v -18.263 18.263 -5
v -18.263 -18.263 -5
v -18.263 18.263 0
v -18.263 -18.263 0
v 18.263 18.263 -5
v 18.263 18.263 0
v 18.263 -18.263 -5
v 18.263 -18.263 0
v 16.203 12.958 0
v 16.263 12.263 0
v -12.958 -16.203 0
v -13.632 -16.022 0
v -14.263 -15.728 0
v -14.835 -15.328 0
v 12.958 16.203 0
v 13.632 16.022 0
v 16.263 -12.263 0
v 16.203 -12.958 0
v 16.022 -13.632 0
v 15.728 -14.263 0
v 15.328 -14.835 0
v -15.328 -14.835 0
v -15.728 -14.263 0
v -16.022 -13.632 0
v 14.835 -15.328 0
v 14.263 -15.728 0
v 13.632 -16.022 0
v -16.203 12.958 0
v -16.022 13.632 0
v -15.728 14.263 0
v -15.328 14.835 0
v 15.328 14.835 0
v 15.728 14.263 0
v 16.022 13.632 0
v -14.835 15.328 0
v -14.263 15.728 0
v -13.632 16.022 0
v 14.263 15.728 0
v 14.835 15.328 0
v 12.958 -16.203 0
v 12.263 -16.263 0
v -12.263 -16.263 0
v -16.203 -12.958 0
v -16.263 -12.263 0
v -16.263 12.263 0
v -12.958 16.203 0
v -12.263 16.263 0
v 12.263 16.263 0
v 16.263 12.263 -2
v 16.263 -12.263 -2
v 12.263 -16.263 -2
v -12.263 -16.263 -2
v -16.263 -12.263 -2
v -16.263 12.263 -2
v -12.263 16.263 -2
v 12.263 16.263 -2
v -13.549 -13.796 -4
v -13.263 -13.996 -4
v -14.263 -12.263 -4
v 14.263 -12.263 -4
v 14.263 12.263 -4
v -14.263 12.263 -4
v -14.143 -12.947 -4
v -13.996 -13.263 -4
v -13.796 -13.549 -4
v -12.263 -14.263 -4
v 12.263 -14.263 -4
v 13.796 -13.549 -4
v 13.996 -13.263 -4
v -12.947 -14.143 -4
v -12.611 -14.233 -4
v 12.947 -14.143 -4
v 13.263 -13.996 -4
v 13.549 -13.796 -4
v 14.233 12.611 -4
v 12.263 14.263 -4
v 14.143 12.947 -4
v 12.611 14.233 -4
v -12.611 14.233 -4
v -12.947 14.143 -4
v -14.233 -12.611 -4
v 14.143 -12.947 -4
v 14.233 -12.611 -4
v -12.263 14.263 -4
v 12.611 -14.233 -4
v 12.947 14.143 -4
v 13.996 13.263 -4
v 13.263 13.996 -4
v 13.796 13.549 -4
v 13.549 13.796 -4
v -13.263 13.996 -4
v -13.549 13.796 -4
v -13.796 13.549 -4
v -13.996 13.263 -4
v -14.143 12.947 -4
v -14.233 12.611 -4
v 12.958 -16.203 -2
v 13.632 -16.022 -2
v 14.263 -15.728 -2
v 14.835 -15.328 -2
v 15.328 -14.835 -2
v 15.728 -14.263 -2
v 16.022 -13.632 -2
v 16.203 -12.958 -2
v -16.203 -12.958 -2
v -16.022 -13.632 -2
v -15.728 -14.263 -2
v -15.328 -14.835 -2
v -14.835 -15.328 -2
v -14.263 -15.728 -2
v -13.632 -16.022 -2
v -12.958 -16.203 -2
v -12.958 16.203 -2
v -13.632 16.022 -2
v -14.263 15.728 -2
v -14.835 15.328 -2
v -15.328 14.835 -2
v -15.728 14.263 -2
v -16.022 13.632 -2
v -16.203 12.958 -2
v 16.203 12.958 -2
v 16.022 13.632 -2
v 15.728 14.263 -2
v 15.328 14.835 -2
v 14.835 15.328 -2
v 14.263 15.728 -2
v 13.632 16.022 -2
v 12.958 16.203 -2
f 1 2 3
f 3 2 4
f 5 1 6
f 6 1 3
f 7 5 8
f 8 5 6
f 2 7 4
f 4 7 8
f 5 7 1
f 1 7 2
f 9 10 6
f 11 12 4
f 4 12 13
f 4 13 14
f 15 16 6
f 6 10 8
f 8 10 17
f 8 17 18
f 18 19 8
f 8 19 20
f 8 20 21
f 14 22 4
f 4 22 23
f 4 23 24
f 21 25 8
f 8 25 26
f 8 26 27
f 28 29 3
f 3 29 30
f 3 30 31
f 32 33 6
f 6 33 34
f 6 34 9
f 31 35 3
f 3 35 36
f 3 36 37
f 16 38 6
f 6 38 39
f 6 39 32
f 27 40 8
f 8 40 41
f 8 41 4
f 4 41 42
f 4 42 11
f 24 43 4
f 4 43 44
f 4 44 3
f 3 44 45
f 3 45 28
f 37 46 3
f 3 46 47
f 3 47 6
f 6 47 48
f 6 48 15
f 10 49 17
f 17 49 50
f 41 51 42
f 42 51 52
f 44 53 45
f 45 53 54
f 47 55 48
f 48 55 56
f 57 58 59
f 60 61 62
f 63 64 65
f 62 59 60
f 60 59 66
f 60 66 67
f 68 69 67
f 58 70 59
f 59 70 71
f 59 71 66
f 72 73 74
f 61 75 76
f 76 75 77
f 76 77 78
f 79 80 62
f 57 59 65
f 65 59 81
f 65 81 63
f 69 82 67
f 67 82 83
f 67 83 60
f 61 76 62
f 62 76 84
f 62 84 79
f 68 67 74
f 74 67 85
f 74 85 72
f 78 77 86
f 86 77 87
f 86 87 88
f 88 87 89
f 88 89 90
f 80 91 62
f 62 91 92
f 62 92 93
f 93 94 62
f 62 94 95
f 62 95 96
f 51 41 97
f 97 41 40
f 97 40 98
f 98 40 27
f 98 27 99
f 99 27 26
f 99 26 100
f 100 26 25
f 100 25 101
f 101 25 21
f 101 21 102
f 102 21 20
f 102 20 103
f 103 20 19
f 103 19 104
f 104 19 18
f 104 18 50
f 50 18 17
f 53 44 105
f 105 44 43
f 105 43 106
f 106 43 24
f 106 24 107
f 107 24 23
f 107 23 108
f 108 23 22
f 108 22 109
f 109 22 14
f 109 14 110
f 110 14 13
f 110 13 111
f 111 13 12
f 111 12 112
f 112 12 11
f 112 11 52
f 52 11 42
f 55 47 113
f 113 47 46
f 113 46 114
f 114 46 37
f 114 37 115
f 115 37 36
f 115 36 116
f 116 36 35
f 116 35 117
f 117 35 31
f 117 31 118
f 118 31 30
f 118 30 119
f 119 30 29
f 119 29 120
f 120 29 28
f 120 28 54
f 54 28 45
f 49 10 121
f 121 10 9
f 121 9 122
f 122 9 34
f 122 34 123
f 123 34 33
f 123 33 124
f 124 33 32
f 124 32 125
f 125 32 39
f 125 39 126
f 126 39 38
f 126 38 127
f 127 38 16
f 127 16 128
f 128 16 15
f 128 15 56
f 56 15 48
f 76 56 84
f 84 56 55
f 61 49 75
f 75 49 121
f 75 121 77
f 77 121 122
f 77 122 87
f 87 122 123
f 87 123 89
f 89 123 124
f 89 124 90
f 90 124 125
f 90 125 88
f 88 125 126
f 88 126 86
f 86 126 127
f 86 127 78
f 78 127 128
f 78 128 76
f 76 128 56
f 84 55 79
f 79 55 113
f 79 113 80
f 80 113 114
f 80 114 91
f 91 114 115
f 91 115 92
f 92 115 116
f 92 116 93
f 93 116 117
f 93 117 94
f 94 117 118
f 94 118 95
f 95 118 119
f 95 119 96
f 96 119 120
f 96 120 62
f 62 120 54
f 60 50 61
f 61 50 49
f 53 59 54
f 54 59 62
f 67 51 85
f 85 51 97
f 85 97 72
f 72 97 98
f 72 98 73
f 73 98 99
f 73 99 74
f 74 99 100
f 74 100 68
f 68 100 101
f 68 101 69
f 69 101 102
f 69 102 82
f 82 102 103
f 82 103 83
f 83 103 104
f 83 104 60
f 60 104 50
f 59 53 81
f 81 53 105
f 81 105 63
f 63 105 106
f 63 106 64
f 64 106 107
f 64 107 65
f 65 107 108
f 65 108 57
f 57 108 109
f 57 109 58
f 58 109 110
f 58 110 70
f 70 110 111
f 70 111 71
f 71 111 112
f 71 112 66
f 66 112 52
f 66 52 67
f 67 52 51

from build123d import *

# Parameters (mm, degrees)
SKETCH1_W           = 36.526911934
SKETCH1_H           = 36.526911934
BOSS_EXTRUDE1_DEPTH = 5
CAVITY1_START       = -2
CAVITY1_DEPTH       = 2


with BuildPart() as part:
    # Sketch1 → Boss-Extrude1 (new body)
    with BuildSketch(Plane.XY):
        Rectangle(SKETCH1_W, SKETCH1_H)
    extrude(amount=-BOSS_EXTRUDE1_DEPTH)

    # Cavity1: read off the stored shape, not the designer's step
    # Cavity1 outline → Cavity1 (cut)
    with BuildSketch(Plane.XY.offset(CAVITY1_START)):
        with BuildLine():
            Line((16.263455967, -12.263455967), (16.263455967, 12.263455967))
            ThreePointArc((16.263455967, 12.263455967), (15.091883092, 15.091883092), (12.263455967, 16.263455967))
            Line((12.263455967, 16.263455967), (-12.263455967, 16.263455967))
            ThreePointArc((-12.263455967, 16.263455967), (-15.091883092, 15.091883092), (-16.263455967, 12.263455967))
            Line((-16.263455967, 12.263455967), (-16.263455967, -12.263455967))
            ThreePointArc((-16.263455967, -12.263455967), (-15.091883092, -15.091883092), (-12.263455967, -16.263455967))
            Line((-12.263455967, -16.263455967), (12.263455967, -16.263455967))
            ThreePointArc((12.263455967, -16.263455967), (15.091883092, -15.091883092), (16.263455967, -12.263455967))
        make_face()
    extrude(amount=CAVITY1_DEPTH, mode=Mode.SUBTRACT)

    # Cavity1 2: loft between two sections, ruled curve by curve
    cavity1_2_from = [
        Edge.make_three_point_arc((14.263455967, 12.263455967, -4), (13.67766953, 13.67766953, -4), (12.263455967, 14.263455967, -4)),
        Edge.make_three_point_arc((-12.263455967, 14.263455967, -4), (-13.67766953, 13.67766953, -4), (-14.263455967, 12.263455967, -4)),
        Edge.make_three_point_arc((12.263455967, -14.263455967, -4), (13.67766953, -13.67766953, -4), (14.263455967, -12.263455967, -4)),
        Edge.make_three_point_arc((-14.263455967, -12.263455967, -4), (-13.67766953, -13.67766953, -4), (-12.263455967, -14.263455967, -4)),
        Edge.make_line((-12.263455967, 14.263455967, -4), (12.263455967, 14.263455967, -4)),
        Edge.make_line((14.263455967, 12.263455967, -4), (14.263455967, -12.263455967, -4)),
        Edge.make_line((-14.263455967, 12.263455967, -4), (-14.263455967, -12.263455967, -4)),
        Edge.make_line((12.263455967, -14.263455967, -4), (-12.263455967, -14.263455967, -4)),
    ]
    cavity1_2_to = [
        Edge.make_three_point_arc((16.263455967, 12.263455967, -2), (15.091883092, 15.091883092, -2), (12.263455967, 16.263455967, -2)),
        Edge.make_three_point_arc((-12.263455967, 16.263455967, -2), (-15.091883092, 15.091883092, -2), (-16.263455967, 12.263455967, -2)),
        Edge.make_three_point_arc((12.263455967, -16.263455967, -2), (15.091883092, -15.091883092, -2), (16.263455967, -12.263455967, -2)),
        Edge.make_three_point_arc((-16.263455967, -12.263455967, -2), (-15.091883092, -15.091883092, -2), (-12.263455967, -16.263455967, -2)),
        Edge.make_line((-12.263455967, 16.263455967, -2), (12.263455967, 16.263455967, -2)),
        Edge.make_line((16.263455967, 12.263455967, -2), (16.263455967, -12.263455967, -2)),
        Edge.make_line((-16.263455967, 12.263455967, -2), (-16.263455967, -12.263455967, -2)),
        Edge.make_line((12.263455967, -16.263455967, -2), (-12.263455967, -16.263455967, -2)),
    ]
    cavity1_2 = Solid(Shell([*[Face.make_surface_from_curves(cavity1_2_from[k], cavity1_2_to[k]) for k in range(8)], Face(Wire(cavity1_2_from)), Face(Wire(cavity1_2_to))]))
    add(cavity1_2, mode=Mode.SUBTRACT)


solid = part.part
